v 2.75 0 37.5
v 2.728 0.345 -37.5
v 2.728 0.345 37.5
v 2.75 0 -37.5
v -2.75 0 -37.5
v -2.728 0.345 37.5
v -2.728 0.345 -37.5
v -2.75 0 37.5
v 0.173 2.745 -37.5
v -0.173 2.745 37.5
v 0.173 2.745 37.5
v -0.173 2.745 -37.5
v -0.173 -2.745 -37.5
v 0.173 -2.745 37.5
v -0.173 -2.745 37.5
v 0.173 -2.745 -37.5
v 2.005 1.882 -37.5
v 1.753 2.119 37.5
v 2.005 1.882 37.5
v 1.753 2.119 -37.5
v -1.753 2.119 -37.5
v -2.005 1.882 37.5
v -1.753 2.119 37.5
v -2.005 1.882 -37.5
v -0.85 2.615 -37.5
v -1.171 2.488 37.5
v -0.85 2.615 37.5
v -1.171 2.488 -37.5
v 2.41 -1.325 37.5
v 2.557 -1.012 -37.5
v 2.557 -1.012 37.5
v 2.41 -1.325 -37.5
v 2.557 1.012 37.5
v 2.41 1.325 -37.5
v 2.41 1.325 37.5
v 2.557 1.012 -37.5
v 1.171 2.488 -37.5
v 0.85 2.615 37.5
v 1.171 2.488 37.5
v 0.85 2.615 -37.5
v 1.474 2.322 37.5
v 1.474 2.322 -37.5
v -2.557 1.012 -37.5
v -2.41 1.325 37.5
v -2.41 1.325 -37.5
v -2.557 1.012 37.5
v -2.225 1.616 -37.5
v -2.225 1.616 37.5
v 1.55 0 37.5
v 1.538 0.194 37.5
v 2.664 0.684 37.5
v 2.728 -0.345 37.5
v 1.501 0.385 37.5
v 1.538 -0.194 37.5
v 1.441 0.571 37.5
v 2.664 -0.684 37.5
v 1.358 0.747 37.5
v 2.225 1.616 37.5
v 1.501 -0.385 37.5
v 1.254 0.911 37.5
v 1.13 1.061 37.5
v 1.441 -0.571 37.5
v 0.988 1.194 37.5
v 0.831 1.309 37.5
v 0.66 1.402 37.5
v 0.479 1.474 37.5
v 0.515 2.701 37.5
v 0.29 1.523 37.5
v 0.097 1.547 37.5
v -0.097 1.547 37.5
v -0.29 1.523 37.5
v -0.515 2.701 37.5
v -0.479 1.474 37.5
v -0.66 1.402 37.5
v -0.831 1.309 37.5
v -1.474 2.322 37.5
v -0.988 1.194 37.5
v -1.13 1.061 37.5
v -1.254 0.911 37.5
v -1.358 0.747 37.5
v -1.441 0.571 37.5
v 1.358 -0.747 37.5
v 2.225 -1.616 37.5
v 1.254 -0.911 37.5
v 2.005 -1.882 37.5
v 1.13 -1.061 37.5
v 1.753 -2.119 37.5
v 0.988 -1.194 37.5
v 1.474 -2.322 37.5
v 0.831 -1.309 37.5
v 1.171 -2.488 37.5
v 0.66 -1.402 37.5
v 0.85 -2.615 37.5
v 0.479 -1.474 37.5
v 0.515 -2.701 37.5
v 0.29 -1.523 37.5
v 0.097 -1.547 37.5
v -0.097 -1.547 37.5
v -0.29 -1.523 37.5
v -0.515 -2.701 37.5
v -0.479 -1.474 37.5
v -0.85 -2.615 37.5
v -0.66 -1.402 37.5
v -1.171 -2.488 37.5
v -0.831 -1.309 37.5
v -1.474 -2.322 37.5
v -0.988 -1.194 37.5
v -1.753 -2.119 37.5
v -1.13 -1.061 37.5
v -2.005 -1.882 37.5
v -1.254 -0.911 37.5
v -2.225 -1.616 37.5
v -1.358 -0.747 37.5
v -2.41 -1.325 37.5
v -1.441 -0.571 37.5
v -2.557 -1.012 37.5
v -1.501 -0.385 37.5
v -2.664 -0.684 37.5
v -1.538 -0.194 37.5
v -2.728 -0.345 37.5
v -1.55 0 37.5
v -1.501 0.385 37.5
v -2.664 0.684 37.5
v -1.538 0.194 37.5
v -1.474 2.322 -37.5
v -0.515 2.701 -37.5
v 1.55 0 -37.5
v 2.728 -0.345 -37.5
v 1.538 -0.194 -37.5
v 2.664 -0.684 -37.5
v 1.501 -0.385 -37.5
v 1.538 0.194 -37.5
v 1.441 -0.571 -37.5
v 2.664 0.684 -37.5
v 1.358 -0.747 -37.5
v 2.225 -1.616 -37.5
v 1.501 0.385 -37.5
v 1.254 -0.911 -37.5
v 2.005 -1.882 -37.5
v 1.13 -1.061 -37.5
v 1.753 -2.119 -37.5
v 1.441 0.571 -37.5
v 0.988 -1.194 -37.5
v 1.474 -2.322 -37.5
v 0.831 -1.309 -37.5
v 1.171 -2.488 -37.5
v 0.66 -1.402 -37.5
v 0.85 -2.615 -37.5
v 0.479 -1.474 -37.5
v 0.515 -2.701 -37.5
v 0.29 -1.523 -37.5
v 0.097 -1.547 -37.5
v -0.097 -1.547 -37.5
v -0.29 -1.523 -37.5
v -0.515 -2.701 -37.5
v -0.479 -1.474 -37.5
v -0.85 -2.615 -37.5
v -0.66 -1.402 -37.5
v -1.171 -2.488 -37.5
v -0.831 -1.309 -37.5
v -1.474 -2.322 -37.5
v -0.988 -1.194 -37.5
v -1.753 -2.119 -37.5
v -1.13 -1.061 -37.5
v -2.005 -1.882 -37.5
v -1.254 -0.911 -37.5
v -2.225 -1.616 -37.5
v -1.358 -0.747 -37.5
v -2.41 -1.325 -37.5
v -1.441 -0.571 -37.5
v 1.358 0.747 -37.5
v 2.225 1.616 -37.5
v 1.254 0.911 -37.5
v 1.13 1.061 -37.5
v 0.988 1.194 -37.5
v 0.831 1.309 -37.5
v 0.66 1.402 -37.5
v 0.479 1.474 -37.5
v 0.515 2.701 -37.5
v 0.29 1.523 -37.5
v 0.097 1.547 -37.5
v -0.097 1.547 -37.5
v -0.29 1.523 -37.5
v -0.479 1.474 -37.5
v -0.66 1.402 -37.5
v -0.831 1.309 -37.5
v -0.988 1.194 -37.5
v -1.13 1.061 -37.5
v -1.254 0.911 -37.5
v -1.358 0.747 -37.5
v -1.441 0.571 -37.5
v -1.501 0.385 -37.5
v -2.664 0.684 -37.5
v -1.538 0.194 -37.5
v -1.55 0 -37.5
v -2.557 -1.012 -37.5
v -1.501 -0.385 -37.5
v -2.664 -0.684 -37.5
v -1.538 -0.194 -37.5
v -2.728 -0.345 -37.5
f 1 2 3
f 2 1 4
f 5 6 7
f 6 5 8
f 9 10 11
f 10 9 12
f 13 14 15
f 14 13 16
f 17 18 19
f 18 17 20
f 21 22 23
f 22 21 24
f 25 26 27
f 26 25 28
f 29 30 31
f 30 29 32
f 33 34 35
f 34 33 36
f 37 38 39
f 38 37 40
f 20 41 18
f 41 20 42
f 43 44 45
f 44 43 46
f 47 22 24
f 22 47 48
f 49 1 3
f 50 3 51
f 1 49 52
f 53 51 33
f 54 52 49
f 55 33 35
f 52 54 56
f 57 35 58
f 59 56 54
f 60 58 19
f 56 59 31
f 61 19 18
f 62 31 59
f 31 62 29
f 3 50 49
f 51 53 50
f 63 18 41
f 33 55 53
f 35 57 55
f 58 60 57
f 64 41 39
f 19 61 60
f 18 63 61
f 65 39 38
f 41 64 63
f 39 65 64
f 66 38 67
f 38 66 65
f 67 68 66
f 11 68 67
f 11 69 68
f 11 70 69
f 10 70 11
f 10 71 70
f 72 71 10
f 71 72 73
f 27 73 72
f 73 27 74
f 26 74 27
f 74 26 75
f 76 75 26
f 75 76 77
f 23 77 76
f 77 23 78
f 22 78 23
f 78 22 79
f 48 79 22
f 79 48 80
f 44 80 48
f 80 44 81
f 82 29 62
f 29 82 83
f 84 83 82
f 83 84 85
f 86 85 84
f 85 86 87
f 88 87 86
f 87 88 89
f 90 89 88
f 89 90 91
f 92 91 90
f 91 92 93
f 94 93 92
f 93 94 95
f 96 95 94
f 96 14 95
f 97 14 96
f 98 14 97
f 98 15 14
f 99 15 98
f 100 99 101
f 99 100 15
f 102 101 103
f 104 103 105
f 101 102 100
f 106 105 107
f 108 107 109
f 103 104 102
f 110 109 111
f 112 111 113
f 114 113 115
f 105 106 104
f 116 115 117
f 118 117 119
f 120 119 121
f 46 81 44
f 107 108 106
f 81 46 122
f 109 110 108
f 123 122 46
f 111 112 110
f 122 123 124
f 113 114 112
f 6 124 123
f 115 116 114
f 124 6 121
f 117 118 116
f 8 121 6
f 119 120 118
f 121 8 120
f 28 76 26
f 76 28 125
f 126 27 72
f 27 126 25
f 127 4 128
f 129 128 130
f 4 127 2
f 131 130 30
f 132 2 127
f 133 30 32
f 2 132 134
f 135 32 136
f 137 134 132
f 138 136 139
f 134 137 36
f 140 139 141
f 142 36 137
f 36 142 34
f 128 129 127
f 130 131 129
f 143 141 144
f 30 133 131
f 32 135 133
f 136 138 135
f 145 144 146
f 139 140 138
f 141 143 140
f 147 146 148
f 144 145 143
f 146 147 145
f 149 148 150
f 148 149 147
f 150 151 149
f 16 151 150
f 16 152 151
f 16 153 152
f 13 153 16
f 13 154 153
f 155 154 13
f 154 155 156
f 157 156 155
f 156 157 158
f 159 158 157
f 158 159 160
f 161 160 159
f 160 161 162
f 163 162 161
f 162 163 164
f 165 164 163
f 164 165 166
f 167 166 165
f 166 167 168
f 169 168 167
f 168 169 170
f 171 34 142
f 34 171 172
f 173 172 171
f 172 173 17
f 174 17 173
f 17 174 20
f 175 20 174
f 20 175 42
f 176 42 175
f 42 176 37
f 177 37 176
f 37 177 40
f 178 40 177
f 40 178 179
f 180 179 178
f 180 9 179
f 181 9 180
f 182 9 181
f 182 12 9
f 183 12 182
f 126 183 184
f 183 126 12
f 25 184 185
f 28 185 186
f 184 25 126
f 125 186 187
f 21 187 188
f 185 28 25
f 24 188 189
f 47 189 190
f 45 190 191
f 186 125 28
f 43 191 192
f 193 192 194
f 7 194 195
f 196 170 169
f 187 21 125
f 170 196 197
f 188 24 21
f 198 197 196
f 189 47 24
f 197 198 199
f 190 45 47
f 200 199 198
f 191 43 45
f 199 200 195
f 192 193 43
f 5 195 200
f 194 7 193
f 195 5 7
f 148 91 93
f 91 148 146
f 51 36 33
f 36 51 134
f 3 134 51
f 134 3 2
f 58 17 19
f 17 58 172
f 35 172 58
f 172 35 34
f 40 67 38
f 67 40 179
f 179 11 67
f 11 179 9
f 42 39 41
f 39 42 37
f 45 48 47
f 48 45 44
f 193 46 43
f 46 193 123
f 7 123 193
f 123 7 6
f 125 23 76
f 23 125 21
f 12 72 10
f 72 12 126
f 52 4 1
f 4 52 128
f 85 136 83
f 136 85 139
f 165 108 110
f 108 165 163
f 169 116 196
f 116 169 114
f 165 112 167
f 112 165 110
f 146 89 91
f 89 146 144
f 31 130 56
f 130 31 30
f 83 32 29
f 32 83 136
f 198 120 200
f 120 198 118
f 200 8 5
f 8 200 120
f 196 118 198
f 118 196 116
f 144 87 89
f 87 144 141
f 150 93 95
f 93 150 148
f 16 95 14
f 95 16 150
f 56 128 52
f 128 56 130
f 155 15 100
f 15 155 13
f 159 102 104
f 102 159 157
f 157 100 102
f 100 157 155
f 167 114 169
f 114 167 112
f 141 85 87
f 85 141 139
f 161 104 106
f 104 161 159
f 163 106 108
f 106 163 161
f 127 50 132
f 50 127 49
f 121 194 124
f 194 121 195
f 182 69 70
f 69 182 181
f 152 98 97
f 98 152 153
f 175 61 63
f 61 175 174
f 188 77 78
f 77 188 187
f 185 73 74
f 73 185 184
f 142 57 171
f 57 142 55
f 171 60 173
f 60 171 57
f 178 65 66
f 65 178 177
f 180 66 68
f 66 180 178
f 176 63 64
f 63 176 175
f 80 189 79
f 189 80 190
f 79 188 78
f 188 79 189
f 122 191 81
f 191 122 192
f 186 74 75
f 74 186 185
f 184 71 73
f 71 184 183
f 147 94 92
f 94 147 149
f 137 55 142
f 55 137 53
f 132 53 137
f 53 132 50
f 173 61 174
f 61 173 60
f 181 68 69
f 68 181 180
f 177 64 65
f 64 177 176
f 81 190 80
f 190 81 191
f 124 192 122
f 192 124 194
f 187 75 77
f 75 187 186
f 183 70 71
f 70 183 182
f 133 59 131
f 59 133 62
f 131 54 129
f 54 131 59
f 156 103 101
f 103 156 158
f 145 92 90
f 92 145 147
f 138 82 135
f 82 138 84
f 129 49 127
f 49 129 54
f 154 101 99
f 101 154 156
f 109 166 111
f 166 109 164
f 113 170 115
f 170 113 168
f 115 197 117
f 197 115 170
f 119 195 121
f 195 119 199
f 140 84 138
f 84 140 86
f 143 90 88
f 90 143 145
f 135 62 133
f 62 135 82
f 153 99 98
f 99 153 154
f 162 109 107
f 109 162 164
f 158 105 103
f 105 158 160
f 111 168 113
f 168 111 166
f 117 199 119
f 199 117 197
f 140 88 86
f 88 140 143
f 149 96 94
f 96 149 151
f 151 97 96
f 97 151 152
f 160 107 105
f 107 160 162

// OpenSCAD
$fn = 50;


difference() {
	union() {
		translate(v = [0, 0, -37.5000000000]) {
			cylinder(h = 75, r = 2.7500000000);
		}
	}
	union() {
		translate(v = [0, 0, -100.0000000000]) {
			cylinder(h = 200, r = 1.5500000000);
		}
	}
}
